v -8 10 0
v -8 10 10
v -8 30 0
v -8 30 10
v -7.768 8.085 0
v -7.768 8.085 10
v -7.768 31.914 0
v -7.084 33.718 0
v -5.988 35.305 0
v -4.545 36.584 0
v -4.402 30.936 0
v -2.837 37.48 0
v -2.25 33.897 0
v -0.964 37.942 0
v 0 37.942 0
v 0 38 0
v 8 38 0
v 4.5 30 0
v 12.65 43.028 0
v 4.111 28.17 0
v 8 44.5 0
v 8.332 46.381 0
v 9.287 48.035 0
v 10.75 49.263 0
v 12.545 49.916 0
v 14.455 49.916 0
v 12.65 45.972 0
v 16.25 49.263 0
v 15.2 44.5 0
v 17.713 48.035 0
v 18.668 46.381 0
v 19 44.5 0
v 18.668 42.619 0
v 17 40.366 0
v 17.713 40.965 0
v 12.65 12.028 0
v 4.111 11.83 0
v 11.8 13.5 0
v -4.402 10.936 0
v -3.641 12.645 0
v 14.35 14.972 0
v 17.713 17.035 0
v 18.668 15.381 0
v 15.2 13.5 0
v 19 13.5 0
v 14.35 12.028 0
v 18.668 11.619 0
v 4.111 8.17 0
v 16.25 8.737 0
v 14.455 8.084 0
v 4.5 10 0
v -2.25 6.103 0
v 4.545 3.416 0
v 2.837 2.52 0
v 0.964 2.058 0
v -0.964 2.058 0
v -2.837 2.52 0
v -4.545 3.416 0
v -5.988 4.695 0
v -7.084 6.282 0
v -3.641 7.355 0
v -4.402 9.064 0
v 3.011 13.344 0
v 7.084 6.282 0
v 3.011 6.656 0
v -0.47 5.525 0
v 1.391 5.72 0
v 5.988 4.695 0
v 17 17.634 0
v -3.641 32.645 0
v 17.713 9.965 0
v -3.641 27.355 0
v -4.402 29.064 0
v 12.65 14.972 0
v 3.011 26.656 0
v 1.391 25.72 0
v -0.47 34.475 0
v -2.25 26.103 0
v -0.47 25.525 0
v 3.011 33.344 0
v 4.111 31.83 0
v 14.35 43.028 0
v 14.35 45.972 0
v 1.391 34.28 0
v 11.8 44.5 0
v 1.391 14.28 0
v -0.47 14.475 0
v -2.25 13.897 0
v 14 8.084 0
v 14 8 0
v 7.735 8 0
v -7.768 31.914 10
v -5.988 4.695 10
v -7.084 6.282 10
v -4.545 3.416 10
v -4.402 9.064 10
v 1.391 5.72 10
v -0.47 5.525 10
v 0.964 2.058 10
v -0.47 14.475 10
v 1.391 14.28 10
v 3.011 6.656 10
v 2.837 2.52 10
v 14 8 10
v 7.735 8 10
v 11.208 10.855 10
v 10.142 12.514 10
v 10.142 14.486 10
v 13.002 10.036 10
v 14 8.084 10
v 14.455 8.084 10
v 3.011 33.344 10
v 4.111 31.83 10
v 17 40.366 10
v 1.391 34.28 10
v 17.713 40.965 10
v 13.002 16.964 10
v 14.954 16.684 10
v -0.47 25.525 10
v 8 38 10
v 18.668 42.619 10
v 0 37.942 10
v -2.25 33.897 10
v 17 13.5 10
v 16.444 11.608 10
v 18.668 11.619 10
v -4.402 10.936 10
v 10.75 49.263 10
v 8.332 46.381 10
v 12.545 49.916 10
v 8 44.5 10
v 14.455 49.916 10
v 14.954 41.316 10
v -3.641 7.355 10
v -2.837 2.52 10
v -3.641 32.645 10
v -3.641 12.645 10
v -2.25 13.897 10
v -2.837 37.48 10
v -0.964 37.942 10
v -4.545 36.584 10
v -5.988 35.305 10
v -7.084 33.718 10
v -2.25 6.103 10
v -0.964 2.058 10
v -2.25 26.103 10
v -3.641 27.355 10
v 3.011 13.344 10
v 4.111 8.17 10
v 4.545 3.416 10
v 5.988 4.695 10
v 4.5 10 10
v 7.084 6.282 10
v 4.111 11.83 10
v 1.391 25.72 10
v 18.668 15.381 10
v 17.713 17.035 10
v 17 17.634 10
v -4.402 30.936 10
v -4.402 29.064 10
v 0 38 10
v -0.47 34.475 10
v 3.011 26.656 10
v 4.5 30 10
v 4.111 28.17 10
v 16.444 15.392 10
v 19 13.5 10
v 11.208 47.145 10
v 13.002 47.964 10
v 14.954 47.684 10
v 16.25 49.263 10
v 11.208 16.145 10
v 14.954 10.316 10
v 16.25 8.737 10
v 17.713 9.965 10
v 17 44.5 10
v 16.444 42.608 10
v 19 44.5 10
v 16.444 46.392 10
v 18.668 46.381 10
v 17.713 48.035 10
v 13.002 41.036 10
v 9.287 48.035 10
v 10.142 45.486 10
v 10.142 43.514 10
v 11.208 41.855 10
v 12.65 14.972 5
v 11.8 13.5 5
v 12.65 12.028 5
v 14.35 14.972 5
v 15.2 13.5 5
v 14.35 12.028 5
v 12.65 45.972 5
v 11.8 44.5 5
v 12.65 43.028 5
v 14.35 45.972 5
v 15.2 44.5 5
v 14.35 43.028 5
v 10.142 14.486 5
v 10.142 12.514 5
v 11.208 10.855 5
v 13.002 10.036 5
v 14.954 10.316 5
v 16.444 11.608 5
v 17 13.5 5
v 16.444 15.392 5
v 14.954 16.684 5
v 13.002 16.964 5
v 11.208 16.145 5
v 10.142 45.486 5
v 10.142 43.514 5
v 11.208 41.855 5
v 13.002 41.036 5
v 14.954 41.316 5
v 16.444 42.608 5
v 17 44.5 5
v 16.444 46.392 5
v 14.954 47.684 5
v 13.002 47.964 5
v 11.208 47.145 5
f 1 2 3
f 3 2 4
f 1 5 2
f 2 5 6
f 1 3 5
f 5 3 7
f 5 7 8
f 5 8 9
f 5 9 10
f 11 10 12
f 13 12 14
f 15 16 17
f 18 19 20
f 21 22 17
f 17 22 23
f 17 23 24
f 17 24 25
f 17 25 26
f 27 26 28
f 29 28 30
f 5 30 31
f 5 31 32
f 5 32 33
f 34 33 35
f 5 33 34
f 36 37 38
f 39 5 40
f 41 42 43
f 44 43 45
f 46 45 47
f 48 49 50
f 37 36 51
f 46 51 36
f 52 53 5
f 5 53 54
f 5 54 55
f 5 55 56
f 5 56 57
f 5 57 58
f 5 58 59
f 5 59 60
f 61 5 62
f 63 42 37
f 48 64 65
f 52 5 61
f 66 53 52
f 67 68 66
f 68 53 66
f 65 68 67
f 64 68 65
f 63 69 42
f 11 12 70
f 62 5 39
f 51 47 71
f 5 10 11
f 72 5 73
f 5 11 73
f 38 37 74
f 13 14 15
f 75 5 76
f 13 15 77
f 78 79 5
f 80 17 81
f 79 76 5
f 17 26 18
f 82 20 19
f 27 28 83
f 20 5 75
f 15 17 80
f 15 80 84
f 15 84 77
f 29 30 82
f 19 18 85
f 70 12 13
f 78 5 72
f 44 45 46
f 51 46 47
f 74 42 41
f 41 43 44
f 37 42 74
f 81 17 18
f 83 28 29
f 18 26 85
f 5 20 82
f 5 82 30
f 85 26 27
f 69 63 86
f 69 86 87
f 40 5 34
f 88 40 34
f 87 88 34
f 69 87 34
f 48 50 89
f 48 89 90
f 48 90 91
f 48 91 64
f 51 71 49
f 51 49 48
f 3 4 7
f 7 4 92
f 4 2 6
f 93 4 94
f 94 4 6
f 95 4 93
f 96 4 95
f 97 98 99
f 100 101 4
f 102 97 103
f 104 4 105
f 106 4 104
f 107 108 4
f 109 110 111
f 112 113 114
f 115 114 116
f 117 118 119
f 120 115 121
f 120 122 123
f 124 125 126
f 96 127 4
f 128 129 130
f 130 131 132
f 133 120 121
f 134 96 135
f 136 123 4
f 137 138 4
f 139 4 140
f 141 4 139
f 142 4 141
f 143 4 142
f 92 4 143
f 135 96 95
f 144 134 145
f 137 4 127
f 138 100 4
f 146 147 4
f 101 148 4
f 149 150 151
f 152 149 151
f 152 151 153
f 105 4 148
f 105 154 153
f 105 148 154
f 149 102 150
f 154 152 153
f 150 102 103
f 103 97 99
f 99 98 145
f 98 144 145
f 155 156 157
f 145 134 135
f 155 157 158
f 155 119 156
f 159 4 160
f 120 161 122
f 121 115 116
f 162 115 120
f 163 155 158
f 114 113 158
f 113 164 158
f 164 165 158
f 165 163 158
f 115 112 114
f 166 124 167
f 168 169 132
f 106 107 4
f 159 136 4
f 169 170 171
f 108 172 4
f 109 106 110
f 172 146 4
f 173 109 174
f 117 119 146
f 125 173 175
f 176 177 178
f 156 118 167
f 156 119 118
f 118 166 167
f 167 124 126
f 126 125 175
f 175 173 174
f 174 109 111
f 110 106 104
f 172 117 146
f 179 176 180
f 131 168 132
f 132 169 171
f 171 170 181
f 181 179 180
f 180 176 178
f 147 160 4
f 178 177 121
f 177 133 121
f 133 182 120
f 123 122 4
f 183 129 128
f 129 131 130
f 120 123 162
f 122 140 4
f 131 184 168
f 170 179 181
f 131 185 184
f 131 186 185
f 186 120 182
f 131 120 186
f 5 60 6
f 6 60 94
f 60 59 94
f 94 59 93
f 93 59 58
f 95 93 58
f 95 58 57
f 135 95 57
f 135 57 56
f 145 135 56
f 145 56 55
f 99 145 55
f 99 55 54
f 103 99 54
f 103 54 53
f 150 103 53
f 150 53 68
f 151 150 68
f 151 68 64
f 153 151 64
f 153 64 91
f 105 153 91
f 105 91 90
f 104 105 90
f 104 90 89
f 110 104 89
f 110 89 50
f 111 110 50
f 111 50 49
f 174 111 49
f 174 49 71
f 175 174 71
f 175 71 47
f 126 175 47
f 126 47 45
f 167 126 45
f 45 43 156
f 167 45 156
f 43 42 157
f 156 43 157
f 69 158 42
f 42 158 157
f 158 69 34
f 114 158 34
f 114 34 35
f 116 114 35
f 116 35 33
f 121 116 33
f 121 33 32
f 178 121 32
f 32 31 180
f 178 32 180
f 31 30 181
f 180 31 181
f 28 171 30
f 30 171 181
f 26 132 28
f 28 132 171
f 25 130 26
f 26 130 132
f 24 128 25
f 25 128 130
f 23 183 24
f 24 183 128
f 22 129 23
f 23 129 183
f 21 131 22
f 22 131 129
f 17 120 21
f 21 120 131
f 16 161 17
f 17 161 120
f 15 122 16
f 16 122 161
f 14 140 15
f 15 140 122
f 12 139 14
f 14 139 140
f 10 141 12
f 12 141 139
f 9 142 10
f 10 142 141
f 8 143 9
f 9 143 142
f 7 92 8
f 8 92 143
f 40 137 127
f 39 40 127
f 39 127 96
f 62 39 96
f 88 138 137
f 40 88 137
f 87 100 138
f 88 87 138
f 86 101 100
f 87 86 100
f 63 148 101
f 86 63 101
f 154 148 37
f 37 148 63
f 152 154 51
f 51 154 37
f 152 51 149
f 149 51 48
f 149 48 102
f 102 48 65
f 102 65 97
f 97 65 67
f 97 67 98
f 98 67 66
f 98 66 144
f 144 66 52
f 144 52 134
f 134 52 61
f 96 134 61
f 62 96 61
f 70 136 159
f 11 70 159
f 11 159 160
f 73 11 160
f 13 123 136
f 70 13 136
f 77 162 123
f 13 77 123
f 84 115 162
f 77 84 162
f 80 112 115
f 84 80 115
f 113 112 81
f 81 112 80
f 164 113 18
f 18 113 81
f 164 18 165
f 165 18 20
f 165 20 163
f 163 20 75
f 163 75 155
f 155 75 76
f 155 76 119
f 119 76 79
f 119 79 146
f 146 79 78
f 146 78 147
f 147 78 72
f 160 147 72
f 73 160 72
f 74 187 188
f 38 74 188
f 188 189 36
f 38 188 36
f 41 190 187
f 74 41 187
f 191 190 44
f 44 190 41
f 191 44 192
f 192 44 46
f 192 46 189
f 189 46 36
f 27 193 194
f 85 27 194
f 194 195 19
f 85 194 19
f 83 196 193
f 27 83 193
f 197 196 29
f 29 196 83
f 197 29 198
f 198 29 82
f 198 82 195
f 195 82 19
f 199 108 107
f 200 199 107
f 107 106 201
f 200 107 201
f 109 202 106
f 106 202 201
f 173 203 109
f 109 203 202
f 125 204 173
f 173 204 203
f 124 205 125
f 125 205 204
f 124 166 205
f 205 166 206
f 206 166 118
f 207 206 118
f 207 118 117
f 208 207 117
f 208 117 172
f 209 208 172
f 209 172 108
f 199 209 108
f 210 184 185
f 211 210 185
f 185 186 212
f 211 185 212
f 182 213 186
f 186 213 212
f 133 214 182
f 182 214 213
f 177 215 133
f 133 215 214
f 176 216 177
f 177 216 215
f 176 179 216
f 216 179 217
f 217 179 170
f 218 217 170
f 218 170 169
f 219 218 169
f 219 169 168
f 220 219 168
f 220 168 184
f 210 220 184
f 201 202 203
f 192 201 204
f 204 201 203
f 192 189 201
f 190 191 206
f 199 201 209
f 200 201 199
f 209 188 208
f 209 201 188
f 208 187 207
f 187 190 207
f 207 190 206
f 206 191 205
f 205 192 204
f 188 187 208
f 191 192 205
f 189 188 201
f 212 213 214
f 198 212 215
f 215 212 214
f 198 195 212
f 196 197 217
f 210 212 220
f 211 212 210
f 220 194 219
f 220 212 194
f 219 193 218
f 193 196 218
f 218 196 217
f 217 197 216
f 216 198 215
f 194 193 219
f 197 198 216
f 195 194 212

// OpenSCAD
// PRUSA iteration3
// Y motor mount
// GNU GPL v3
// Josef Průša <iam@josefprusa.cz> and contributors
// http://www.reprap.org/wiki/Prusa_Mendel
// http://prusamendel.org

//include <configuration.scad>

module y_motor_base(){
 // Motor holding part
 translate(v = [29,-21+50,0]){
  translate(v = [-21+4.5,0,5]) cube(size = [9,31,10], center=true);
  translate(v = [-15.5,-15.5,0]) cylinder(h = 10, r=5.5);
  translate(v = [-15.5,+15.5,0]) cylinder(h = 10, r=5.5);
  // Joins motor holder and rod plate
  translate(v = [-29,-21,0]) cube(size = [14,30,10]);
 }
 // Front holding part
 translate(v = [0,10,0]) cylinder(h = 10, r=8);
 translate(v = [0,20,5])cube(size = [16,20,10], center=true);	
 translate(v = [0,30,0])cylinder(h = 10, r=8);
}

module y_motor_holes(){
 translate(v = [29,-21+50,0]){
  // Screw head holes
  translate(v = [-15.5,-15.5,-1]) cylinder(h = 10, r=1.7);
  translate(v = [-15.5,+15.5,-1]) cylinder(h = 10, r=1.7);
  // Screw holes
  translate(v = [-15.5,-15.5,5]) cylinder(h = 7, r=3.5);
  translate(v = [-15.5,+15.5,5]) cylinder(h = 7, r=3.5);
 }
 translate(v = [0,10,-1]) cylinder(h = 12, r=4.5);	
 translate(v = [0,30,-1])cylinder(h = 12, r=4.5);
}

// Final part
module y_motor(){
 difference(){
  y_motor_base();
  y_motor_holes();
 }
}

y_motor();
